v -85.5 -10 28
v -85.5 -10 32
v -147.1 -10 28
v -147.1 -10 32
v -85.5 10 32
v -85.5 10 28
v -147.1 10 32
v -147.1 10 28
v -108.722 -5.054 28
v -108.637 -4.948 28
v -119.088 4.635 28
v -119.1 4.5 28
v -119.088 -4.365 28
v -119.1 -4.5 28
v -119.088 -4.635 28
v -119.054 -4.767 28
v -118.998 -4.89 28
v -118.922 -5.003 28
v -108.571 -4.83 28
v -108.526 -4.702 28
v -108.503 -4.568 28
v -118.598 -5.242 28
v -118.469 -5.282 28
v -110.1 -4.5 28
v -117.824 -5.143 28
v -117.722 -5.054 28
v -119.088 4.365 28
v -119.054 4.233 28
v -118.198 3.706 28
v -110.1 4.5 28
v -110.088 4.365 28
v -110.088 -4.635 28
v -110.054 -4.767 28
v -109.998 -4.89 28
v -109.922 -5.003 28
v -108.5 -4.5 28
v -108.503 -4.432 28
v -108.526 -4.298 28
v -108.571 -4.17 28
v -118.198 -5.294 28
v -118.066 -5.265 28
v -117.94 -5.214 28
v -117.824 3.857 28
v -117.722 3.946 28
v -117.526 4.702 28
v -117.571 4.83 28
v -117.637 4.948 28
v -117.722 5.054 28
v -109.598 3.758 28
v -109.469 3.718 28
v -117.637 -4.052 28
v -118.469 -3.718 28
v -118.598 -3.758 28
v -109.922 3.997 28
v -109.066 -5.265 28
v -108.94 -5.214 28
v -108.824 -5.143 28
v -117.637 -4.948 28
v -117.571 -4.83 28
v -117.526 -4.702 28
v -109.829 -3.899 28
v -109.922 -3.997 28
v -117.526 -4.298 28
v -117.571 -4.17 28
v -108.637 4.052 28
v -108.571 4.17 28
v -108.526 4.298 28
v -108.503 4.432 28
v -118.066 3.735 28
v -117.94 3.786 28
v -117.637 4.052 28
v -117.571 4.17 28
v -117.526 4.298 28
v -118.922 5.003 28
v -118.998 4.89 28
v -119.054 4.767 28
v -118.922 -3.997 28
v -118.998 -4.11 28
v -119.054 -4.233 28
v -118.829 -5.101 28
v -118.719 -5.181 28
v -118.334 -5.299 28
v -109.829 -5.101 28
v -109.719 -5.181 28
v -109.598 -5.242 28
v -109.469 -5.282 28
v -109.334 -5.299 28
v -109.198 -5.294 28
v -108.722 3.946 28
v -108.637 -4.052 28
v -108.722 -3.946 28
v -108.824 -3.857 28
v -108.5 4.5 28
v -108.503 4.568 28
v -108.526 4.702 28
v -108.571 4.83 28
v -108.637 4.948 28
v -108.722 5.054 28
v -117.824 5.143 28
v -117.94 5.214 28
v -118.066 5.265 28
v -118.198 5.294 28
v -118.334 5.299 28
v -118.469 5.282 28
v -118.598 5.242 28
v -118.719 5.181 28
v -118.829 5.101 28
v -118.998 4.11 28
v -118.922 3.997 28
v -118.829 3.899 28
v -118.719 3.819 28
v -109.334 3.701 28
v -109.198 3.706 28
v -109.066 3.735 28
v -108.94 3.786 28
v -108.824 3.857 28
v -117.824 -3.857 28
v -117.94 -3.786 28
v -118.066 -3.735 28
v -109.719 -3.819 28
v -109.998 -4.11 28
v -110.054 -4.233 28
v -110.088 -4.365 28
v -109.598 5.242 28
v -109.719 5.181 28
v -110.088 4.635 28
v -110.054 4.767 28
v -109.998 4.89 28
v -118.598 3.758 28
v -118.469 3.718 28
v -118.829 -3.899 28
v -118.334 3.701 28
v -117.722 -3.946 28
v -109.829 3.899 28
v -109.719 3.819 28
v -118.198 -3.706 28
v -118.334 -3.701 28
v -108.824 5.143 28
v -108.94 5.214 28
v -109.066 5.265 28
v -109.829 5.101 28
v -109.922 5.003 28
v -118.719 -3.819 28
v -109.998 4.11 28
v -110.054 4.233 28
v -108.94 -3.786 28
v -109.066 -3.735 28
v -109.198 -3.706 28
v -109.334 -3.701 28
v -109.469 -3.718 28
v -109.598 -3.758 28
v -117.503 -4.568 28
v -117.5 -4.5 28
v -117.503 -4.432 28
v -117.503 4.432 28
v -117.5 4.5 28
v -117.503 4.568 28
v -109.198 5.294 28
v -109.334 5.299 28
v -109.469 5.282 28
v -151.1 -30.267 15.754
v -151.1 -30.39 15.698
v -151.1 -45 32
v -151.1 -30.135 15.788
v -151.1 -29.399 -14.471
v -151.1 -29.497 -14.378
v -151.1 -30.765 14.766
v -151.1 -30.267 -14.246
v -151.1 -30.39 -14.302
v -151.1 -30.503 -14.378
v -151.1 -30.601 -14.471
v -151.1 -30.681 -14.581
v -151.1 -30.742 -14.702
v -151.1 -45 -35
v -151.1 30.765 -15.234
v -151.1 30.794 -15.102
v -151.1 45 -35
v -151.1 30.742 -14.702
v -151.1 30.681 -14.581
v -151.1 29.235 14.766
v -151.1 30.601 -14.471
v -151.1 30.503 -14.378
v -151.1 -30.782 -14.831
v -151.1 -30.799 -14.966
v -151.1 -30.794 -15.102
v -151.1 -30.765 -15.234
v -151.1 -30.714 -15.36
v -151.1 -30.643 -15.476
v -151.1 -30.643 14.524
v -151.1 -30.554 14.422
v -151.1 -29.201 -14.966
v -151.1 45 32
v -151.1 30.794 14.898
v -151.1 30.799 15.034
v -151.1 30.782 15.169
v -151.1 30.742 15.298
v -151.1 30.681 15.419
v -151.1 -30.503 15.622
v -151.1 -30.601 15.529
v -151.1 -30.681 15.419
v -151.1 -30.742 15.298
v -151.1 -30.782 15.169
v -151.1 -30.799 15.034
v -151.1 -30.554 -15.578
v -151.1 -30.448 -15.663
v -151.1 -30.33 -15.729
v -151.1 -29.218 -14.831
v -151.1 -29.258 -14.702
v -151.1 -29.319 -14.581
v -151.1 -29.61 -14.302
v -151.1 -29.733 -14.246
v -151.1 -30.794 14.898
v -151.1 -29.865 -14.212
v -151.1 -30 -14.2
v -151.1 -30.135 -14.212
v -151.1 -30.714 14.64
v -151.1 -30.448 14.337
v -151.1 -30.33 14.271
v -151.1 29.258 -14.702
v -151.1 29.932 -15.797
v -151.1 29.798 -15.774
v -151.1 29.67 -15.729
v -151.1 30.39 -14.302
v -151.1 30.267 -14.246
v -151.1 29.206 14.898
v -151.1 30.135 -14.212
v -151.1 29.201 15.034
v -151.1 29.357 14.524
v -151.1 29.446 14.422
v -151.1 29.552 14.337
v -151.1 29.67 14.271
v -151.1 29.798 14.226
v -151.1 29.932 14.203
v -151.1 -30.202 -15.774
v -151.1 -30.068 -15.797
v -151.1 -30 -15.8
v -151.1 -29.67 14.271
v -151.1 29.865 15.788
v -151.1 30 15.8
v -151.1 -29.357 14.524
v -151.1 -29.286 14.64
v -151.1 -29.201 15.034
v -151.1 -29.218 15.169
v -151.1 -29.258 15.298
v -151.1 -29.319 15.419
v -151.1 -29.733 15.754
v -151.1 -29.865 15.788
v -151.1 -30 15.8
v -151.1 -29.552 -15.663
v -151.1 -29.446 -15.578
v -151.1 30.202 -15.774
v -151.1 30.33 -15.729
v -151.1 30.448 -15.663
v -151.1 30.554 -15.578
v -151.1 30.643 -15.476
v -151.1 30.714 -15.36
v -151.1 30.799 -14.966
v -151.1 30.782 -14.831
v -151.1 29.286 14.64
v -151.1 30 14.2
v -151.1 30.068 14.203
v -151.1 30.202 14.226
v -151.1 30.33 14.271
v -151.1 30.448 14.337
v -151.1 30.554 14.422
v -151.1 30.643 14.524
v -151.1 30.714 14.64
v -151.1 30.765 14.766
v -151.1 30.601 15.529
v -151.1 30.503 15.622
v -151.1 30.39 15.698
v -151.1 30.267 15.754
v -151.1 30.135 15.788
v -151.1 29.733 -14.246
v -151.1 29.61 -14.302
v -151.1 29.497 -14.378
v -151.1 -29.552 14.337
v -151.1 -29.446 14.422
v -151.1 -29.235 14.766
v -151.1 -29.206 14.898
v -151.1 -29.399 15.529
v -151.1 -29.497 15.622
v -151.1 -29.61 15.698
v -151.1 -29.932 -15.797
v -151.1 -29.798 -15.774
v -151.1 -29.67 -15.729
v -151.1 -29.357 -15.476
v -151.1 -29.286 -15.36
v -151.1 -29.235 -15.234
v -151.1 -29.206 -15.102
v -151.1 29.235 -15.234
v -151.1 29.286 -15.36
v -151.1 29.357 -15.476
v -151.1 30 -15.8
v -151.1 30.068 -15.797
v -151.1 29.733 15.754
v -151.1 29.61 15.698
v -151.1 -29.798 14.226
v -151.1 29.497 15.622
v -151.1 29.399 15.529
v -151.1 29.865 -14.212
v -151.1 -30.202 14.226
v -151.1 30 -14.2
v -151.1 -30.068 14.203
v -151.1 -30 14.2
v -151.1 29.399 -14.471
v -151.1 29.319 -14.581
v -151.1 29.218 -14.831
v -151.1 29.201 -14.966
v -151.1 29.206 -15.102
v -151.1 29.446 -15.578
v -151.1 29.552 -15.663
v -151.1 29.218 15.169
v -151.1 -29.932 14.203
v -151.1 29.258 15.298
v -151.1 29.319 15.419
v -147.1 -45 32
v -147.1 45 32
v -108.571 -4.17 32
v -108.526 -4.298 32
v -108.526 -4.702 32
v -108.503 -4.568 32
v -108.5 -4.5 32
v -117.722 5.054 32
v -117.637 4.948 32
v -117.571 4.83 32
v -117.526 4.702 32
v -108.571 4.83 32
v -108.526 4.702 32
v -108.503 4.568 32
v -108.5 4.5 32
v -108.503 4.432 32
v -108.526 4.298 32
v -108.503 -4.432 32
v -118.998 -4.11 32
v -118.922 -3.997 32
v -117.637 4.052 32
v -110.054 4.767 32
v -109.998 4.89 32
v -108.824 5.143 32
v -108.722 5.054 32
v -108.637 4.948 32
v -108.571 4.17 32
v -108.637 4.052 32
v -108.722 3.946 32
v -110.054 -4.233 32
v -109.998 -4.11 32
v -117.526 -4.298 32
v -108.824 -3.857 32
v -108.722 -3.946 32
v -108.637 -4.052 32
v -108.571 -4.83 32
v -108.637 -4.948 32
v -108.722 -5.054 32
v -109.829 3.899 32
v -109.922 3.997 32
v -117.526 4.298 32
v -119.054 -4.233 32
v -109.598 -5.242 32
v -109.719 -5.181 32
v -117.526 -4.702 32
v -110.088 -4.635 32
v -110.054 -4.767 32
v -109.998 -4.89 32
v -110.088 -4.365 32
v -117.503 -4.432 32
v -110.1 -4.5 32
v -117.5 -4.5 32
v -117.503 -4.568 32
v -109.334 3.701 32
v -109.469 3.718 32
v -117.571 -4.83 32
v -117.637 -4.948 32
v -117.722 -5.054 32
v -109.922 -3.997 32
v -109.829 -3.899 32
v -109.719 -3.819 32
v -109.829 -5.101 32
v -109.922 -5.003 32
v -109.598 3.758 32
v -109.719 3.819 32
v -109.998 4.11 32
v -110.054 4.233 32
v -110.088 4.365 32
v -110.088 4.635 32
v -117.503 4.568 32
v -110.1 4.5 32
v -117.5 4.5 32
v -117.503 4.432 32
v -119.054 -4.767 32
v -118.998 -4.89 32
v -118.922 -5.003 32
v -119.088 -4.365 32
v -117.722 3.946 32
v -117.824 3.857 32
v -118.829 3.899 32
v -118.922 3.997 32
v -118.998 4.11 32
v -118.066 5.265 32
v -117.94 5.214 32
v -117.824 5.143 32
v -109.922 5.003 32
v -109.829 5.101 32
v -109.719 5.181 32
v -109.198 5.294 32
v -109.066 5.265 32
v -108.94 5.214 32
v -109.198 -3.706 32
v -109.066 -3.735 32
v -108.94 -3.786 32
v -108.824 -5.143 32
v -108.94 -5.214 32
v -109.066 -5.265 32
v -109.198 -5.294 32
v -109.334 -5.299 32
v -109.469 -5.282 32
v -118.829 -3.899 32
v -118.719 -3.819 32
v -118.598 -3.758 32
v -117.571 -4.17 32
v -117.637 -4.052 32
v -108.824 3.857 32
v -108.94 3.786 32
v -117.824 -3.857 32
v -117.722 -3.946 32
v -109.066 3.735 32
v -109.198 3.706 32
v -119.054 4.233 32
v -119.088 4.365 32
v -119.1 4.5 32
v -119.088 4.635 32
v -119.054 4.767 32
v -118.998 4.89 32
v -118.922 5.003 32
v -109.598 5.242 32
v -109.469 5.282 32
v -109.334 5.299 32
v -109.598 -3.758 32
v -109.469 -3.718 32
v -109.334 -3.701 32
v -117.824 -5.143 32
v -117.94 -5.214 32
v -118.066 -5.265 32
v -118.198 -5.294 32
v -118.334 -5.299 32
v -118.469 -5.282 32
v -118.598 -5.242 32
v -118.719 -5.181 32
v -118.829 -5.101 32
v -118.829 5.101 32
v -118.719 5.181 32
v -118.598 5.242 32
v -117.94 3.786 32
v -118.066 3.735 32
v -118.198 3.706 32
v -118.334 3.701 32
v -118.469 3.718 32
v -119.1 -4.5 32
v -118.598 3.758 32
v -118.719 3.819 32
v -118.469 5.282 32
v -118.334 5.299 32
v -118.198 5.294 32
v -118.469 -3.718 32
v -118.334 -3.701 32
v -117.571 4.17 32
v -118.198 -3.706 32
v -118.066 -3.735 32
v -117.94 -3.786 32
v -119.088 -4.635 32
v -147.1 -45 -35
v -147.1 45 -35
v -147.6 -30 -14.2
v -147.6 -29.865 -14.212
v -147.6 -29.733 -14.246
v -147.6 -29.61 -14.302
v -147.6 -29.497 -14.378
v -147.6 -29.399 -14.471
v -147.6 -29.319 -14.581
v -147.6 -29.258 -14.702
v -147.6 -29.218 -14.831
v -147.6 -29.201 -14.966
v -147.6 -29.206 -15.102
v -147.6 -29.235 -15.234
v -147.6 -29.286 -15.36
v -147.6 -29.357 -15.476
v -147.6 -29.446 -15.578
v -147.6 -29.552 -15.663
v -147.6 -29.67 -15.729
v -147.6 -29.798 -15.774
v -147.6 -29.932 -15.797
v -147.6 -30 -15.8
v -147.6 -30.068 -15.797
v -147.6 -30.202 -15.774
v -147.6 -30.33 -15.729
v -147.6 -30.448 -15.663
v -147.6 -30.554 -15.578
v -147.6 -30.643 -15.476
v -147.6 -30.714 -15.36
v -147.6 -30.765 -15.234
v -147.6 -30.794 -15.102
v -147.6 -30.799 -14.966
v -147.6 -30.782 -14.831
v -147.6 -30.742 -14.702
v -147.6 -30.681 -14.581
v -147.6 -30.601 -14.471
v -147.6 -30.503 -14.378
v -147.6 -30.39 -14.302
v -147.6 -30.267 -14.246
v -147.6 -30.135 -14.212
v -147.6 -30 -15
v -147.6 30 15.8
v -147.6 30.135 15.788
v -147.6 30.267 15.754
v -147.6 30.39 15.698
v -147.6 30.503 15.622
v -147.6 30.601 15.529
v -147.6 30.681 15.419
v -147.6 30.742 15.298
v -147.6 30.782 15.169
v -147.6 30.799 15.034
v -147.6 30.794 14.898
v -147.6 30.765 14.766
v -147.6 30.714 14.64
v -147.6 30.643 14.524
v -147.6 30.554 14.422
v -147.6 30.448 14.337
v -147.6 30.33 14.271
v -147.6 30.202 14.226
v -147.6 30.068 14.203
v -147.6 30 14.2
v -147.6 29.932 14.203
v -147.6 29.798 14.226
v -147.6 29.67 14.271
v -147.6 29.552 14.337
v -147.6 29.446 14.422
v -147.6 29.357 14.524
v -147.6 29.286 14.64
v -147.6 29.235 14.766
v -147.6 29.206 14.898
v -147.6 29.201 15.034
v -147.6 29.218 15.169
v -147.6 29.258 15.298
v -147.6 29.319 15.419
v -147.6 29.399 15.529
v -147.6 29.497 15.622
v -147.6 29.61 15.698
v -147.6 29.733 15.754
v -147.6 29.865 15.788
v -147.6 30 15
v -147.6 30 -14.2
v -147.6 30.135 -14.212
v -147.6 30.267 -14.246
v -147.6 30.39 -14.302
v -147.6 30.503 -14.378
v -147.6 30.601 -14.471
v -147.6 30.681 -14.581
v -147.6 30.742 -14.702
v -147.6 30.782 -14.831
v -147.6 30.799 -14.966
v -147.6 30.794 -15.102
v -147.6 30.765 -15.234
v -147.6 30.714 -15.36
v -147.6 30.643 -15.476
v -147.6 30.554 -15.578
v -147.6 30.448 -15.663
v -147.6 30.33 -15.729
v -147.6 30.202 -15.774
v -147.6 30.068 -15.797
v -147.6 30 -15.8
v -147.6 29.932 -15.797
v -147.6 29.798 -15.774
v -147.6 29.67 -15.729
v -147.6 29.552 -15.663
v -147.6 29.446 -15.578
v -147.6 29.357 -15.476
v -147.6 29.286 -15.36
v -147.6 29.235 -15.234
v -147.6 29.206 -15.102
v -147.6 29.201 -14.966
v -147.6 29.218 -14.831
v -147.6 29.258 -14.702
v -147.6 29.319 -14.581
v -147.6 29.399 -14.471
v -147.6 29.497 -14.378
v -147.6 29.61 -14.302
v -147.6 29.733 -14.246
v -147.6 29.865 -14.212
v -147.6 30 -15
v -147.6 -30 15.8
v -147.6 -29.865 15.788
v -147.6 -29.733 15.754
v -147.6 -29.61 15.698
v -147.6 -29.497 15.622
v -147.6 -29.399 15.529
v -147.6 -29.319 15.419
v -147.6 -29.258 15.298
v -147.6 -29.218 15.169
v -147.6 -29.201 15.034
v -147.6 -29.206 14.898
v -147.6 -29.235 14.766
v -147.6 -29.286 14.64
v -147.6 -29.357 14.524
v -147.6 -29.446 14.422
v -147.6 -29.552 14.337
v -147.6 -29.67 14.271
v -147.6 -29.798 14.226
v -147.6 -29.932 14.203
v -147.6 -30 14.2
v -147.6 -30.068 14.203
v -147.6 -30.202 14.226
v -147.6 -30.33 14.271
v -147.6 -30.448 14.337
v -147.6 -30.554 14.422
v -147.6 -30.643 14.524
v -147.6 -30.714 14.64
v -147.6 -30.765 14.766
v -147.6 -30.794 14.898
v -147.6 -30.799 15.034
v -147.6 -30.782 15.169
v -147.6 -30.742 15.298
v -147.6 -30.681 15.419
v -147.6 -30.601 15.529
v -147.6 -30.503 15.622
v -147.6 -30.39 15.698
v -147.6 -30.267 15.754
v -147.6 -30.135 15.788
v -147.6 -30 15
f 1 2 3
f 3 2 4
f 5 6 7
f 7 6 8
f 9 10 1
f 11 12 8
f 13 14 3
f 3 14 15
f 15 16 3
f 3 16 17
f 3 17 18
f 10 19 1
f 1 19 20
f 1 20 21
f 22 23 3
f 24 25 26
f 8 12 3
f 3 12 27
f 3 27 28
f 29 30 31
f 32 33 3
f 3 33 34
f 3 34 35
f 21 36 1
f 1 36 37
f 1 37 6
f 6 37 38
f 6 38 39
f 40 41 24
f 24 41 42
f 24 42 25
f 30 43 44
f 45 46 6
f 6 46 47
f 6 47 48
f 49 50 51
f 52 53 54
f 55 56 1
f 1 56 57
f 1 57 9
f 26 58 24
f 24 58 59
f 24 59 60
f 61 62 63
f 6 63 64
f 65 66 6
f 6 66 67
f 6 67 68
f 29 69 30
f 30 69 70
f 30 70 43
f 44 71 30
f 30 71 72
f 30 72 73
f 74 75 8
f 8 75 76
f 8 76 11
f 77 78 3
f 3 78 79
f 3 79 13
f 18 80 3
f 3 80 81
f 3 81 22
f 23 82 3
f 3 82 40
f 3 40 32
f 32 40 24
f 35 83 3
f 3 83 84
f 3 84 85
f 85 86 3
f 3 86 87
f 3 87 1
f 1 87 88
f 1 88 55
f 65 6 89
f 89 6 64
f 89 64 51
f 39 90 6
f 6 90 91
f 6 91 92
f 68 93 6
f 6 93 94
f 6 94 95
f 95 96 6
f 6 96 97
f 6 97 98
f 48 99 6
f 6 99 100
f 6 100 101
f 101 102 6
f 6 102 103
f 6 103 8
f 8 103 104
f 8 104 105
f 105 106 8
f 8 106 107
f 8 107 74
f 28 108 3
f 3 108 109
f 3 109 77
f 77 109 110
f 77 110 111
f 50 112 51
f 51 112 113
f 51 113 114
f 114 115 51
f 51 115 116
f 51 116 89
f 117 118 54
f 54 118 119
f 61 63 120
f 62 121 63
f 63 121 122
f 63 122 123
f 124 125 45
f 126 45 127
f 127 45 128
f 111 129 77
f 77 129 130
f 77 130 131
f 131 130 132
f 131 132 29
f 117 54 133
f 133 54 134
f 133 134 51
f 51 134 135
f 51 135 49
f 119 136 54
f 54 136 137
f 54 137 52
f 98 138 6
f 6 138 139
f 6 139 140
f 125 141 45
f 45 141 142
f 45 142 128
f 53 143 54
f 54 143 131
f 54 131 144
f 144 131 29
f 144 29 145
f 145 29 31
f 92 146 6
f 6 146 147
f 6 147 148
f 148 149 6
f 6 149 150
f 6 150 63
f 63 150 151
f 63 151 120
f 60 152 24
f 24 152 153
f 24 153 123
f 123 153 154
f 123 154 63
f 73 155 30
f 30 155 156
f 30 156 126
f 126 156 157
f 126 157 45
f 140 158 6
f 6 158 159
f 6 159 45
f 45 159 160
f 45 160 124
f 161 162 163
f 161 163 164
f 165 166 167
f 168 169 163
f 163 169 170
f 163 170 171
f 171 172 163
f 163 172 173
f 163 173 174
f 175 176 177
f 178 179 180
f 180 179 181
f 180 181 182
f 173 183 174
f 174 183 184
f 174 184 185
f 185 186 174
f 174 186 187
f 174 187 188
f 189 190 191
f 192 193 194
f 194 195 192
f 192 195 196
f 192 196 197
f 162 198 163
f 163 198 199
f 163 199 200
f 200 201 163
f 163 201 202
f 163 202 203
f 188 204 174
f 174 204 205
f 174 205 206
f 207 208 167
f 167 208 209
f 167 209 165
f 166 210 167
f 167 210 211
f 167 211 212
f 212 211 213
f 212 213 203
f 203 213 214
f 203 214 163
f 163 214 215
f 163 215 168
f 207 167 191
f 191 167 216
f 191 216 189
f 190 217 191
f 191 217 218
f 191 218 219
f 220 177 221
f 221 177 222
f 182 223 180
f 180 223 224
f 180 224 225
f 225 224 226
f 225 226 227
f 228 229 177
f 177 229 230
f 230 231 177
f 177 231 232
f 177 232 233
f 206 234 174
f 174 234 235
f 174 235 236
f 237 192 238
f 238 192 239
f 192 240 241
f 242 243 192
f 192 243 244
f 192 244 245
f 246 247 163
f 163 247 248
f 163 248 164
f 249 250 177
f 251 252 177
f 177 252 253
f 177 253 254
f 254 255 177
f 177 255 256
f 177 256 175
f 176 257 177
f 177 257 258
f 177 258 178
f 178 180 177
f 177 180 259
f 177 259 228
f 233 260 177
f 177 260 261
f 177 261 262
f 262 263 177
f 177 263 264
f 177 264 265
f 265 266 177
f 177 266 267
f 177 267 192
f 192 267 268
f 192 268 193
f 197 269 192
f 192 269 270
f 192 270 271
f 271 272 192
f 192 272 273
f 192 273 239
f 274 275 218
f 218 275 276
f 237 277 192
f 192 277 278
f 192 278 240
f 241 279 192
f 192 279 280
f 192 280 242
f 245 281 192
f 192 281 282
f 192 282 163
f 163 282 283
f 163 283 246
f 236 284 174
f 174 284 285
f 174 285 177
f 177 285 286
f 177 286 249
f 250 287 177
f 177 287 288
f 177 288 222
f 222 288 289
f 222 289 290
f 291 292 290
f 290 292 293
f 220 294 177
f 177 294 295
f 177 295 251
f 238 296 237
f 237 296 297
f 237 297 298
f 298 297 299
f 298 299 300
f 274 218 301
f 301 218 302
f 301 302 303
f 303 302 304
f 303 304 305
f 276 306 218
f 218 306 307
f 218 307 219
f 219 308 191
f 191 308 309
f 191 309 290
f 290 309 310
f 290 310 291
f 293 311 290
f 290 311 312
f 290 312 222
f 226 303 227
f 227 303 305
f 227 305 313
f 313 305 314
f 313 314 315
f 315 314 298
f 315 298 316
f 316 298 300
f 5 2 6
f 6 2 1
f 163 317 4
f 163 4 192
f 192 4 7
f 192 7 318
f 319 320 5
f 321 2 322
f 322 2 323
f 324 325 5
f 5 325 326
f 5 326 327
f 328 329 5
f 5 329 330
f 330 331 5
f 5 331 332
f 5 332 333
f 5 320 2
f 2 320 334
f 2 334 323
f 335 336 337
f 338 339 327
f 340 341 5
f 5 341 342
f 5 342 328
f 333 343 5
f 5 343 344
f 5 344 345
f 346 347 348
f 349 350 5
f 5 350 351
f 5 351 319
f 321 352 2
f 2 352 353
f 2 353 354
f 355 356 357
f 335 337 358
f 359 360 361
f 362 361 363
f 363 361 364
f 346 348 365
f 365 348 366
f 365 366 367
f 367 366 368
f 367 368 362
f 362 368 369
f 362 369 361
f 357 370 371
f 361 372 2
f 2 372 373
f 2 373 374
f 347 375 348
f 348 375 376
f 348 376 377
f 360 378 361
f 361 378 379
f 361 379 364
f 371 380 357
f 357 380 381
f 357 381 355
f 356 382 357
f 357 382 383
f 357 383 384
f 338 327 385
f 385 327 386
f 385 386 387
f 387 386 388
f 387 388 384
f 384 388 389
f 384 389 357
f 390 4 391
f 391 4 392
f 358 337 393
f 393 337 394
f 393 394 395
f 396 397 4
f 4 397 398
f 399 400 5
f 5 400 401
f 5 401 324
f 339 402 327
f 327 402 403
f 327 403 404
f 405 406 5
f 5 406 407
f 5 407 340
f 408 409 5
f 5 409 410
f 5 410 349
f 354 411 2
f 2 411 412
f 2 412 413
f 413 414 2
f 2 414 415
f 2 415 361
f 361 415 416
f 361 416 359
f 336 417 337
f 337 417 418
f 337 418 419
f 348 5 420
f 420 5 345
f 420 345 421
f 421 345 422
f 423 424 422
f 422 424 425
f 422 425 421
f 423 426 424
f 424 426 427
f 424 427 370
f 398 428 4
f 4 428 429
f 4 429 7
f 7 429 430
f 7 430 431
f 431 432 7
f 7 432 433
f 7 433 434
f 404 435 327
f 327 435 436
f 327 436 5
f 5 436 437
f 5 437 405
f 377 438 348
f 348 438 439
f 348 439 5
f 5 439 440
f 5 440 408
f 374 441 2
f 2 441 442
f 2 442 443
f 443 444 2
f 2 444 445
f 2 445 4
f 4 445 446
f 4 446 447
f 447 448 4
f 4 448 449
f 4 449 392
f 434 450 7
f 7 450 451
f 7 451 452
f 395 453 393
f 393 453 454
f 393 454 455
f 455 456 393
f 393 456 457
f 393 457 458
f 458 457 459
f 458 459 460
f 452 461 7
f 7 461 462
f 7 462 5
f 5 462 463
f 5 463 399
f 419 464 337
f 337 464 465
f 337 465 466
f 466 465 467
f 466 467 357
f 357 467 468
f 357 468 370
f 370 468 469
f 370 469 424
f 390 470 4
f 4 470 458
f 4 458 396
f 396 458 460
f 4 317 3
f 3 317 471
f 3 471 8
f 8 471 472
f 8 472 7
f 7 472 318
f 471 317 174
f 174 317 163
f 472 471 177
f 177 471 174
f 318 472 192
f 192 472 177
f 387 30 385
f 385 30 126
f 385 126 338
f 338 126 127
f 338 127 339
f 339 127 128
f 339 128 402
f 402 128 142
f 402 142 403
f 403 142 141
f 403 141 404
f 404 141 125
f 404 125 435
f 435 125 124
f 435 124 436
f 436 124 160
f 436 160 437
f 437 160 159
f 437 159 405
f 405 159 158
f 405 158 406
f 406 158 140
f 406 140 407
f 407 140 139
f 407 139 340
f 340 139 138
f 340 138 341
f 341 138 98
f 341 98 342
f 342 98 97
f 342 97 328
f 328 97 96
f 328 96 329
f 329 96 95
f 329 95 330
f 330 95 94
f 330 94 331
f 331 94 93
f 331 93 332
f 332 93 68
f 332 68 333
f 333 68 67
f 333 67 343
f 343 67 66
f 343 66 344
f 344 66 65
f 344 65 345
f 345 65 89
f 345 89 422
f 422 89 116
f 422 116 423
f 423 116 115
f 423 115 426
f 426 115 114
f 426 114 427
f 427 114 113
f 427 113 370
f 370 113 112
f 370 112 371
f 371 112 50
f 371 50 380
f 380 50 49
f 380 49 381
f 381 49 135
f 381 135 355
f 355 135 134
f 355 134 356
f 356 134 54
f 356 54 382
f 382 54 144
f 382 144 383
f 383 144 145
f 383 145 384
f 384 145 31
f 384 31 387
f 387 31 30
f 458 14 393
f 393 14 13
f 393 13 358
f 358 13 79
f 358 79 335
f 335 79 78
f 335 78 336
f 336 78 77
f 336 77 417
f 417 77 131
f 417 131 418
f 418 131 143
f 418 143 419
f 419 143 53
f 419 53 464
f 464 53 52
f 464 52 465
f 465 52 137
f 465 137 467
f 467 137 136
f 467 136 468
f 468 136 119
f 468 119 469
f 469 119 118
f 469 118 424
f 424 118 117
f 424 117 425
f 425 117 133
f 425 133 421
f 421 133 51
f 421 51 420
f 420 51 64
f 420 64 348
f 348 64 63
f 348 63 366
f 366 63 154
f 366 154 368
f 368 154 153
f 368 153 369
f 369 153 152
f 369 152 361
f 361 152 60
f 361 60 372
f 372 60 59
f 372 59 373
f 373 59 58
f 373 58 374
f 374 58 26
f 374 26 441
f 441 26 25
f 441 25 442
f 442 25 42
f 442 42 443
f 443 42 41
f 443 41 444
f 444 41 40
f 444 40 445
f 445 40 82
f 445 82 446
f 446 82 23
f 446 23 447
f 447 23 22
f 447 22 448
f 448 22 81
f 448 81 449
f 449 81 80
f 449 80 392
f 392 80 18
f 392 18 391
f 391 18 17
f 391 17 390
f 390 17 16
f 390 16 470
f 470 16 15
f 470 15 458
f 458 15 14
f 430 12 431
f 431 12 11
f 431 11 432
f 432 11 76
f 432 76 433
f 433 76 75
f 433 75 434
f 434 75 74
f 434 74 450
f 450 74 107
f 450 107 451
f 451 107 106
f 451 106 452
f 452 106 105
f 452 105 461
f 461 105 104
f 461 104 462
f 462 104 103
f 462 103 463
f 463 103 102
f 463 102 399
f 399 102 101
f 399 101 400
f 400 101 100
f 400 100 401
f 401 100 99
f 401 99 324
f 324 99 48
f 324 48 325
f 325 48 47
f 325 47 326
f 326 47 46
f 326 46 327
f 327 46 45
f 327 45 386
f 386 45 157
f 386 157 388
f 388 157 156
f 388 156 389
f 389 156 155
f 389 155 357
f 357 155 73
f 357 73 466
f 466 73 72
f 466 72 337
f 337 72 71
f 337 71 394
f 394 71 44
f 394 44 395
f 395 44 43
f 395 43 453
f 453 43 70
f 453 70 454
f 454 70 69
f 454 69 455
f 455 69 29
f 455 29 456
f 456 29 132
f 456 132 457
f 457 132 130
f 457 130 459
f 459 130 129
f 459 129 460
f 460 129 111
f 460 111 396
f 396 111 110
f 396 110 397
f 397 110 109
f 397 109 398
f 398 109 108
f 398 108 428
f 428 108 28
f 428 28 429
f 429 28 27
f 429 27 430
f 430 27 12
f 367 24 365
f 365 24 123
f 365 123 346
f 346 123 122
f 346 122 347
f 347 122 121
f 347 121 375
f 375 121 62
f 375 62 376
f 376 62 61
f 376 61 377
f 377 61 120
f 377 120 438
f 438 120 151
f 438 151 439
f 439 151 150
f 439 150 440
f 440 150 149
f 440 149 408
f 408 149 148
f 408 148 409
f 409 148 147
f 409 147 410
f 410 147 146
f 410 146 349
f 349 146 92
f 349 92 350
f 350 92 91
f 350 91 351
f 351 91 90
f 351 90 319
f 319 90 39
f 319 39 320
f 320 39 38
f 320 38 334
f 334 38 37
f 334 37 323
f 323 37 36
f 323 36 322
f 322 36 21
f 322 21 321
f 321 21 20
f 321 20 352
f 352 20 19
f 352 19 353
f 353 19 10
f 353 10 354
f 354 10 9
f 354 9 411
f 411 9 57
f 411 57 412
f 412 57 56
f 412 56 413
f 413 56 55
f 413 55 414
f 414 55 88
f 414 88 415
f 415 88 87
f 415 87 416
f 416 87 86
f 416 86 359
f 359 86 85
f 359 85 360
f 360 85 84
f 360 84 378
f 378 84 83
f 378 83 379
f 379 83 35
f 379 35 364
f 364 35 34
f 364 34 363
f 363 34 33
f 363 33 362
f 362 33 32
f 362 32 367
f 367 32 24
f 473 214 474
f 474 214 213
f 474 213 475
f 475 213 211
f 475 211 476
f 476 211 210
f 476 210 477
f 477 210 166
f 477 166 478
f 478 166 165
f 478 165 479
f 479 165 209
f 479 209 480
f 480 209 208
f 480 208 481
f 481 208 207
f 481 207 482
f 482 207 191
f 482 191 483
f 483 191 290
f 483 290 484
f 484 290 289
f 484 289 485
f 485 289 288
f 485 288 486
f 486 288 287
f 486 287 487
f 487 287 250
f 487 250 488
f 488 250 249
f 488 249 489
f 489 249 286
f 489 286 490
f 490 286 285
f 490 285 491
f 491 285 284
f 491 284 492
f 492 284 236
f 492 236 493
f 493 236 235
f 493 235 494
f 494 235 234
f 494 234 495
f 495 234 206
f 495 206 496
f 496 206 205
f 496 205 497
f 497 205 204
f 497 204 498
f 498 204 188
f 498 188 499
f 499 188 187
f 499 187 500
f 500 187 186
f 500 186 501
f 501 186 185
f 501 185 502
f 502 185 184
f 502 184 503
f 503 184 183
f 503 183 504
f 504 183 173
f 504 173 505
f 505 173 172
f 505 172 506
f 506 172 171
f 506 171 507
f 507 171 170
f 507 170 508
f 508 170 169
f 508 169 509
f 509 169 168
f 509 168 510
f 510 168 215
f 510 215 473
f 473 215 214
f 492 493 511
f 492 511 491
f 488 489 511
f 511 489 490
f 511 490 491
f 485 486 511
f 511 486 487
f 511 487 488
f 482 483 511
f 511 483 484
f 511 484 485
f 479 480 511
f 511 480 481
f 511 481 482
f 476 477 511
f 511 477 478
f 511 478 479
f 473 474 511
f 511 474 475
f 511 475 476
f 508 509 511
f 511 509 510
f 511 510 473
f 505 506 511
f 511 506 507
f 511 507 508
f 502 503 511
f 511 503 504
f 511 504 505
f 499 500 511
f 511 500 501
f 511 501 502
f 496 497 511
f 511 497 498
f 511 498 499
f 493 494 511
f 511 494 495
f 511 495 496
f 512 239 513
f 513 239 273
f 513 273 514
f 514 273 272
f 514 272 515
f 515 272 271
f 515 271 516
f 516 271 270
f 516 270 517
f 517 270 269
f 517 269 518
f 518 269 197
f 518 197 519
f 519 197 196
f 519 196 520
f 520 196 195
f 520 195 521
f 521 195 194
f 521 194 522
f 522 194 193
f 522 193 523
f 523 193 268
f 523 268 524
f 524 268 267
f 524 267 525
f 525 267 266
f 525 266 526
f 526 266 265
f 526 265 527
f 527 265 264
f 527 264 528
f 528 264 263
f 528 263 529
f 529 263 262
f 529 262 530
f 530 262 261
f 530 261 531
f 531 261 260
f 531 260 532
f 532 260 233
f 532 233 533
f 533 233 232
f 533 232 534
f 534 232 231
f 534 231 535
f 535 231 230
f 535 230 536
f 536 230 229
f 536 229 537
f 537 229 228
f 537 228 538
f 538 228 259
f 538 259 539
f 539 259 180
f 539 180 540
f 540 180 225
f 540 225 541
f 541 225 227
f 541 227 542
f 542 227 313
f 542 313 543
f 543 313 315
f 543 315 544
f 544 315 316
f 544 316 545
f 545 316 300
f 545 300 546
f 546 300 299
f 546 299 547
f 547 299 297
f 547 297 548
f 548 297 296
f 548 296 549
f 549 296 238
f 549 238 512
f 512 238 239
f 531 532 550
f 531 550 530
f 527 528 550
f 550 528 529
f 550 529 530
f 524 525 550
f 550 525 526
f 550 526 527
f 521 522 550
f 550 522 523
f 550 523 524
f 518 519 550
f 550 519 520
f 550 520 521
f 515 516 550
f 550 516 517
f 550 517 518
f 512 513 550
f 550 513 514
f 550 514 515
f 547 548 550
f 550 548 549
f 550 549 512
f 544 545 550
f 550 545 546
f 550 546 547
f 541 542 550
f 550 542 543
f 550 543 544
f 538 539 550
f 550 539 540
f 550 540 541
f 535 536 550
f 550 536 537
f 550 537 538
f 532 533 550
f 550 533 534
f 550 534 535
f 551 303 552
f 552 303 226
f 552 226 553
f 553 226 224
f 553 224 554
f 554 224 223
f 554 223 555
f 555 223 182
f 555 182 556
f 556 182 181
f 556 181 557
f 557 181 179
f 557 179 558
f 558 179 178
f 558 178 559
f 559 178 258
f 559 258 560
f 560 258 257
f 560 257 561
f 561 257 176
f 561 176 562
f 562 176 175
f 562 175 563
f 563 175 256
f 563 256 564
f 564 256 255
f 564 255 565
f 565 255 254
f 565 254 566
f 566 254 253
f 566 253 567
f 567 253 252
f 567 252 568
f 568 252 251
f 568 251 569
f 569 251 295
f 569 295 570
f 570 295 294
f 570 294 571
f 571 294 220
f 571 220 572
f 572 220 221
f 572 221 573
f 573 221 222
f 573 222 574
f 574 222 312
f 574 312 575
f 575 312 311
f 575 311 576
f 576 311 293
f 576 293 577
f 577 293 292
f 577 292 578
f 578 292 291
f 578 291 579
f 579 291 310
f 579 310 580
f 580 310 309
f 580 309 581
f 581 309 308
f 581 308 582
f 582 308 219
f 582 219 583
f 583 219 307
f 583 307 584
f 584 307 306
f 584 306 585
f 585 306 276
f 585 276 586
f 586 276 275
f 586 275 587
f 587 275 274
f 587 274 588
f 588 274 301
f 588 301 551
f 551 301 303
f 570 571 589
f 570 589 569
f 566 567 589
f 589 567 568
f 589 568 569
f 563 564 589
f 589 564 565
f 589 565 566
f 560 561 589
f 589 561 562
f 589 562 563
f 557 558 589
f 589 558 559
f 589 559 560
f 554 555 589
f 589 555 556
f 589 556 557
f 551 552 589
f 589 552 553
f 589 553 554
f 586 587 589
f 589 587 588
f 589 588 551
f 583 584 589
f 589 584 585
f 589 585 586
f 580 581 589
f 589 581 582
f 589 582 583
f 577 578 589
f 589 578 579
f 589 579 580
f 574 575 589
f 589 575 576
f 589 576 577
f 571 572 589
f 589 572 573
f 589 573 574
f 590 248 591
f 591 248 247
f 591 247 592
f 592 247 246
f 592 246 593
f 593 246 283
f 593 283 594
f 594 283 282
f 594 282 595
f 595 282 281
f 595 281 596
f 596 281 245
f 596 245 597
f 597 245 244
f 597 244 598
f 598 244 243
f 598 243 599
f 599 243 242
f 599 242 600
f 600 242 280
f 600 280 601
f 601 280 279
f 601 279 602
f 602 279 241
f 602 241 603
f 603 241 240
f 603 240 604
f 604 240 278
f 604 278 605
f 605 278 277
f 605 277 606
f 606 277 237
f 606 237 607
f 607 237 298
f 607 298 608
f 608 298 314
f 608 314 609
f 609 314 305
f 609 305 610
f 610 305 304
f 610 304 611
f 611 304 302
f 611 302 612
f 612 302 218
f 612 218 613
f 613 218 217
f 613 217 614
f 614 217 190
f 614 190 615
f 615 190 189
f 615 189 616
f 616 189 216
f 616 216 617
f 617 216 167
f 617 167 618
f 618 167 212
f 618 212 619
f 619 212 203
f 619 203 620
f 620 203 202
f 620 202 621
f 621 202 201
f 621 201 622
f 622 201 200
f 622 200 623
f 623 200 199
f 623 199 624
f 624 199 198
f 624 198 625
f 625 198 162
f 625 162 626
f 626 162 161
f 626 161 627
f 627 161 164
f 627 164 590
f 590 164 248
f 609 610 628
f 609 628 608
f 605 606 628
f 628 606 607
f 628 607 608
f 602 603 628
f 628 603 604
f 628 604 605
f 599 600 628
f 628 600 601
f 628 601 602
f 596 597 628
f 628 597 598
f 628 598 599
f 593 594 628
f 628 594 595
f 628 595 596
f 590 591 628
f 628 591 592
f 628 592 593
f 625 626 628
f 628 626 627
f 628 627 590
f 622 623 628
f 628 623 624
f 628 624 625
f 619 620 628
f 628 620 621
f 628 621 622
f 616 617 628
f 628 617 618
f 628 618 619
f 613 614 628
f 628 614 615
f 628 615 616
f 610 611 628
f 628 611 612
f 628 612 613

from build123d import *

# Parameters (mm, degrees)
SKETCH1_W           = 65.6
SKETCH1_H           = 20
BOSS_EXTRUDE1_DEPTH = 4
SKETCH2_W           = 67
SKETCH2_H           = 90
BOSS_EXTRUDE2_DEPTH = 4
SKETCH3_R           = 0.8
CUT_EXTRUDE2_DEPTH  = 4
SKETCH4_R           = 0.8
CUT_EXTRUDE4_DEPTH  = 3.5


with BuildPart() as part:
    # Sketch1 → Boss-Extrude1 (new body)
    with BuildSketch(Plane.XY.offset(28)):
        with Locations((-118.3, 0)):
            Rectangle(SKETCH1_W, SKETCH1_H)
    extrude(amount=BOSS_EXTRUDE1_DEPTH)

    # Sketch2 → Boss-Extrude2 (add)
    with BuildSketch(Plane(origin=(-151.1, 0, 0), x_dir=(0, 0, -1), z_dir=(1, 0, 0))):
        with Locations((1.5, 0)):
            Rectangle(SKETCH2_W, SKETCH2_H)
    extrude(amount=BOSS_EXTRUDE2_DEPTH)

    # Sketch3 → Cut-Extrude2 (cut)
    with BuildSketch(Plane.XY.offset(28)):
        with Locations((-109.3, 4.5)):
            Circle(SKETCH3_R)
        with Locations((-109.3, -4.5)):
            Circle(SKETCH3_R)
        with Locations((-118.3, 4.5)):
            Circle(SKETCH3_R)
        with Locations((-118.3, -4.5)):
            Circle(SKETCH3_R)
    extrude(amount=CUT_EXTRUDE2_DEPTH, mode=Mode.SUBTRACT)

    # Sketch4 → Cut-Extrude4 (cut)
    with BuildSketch(Plane(origin=(-151.1, 0, 0), x_dir=(0, 0, -1), z_dir=(1, 0, 0))):
        with Locations((15, -30)):
            Circle(SKETCH4_R)
        with Locations((-15, -30)):
            Circle(SKETCH4_R)
        with Locations((15, 30)):
            Circle(SKETCH4_R)
        with Locations((-15, 30)):
            Circle(SKETCH4_R)
    extrude(amount=CUT_EXTRUDE4_DEPTH, mode=Mode.SUBTRACT)


solid = part.part
